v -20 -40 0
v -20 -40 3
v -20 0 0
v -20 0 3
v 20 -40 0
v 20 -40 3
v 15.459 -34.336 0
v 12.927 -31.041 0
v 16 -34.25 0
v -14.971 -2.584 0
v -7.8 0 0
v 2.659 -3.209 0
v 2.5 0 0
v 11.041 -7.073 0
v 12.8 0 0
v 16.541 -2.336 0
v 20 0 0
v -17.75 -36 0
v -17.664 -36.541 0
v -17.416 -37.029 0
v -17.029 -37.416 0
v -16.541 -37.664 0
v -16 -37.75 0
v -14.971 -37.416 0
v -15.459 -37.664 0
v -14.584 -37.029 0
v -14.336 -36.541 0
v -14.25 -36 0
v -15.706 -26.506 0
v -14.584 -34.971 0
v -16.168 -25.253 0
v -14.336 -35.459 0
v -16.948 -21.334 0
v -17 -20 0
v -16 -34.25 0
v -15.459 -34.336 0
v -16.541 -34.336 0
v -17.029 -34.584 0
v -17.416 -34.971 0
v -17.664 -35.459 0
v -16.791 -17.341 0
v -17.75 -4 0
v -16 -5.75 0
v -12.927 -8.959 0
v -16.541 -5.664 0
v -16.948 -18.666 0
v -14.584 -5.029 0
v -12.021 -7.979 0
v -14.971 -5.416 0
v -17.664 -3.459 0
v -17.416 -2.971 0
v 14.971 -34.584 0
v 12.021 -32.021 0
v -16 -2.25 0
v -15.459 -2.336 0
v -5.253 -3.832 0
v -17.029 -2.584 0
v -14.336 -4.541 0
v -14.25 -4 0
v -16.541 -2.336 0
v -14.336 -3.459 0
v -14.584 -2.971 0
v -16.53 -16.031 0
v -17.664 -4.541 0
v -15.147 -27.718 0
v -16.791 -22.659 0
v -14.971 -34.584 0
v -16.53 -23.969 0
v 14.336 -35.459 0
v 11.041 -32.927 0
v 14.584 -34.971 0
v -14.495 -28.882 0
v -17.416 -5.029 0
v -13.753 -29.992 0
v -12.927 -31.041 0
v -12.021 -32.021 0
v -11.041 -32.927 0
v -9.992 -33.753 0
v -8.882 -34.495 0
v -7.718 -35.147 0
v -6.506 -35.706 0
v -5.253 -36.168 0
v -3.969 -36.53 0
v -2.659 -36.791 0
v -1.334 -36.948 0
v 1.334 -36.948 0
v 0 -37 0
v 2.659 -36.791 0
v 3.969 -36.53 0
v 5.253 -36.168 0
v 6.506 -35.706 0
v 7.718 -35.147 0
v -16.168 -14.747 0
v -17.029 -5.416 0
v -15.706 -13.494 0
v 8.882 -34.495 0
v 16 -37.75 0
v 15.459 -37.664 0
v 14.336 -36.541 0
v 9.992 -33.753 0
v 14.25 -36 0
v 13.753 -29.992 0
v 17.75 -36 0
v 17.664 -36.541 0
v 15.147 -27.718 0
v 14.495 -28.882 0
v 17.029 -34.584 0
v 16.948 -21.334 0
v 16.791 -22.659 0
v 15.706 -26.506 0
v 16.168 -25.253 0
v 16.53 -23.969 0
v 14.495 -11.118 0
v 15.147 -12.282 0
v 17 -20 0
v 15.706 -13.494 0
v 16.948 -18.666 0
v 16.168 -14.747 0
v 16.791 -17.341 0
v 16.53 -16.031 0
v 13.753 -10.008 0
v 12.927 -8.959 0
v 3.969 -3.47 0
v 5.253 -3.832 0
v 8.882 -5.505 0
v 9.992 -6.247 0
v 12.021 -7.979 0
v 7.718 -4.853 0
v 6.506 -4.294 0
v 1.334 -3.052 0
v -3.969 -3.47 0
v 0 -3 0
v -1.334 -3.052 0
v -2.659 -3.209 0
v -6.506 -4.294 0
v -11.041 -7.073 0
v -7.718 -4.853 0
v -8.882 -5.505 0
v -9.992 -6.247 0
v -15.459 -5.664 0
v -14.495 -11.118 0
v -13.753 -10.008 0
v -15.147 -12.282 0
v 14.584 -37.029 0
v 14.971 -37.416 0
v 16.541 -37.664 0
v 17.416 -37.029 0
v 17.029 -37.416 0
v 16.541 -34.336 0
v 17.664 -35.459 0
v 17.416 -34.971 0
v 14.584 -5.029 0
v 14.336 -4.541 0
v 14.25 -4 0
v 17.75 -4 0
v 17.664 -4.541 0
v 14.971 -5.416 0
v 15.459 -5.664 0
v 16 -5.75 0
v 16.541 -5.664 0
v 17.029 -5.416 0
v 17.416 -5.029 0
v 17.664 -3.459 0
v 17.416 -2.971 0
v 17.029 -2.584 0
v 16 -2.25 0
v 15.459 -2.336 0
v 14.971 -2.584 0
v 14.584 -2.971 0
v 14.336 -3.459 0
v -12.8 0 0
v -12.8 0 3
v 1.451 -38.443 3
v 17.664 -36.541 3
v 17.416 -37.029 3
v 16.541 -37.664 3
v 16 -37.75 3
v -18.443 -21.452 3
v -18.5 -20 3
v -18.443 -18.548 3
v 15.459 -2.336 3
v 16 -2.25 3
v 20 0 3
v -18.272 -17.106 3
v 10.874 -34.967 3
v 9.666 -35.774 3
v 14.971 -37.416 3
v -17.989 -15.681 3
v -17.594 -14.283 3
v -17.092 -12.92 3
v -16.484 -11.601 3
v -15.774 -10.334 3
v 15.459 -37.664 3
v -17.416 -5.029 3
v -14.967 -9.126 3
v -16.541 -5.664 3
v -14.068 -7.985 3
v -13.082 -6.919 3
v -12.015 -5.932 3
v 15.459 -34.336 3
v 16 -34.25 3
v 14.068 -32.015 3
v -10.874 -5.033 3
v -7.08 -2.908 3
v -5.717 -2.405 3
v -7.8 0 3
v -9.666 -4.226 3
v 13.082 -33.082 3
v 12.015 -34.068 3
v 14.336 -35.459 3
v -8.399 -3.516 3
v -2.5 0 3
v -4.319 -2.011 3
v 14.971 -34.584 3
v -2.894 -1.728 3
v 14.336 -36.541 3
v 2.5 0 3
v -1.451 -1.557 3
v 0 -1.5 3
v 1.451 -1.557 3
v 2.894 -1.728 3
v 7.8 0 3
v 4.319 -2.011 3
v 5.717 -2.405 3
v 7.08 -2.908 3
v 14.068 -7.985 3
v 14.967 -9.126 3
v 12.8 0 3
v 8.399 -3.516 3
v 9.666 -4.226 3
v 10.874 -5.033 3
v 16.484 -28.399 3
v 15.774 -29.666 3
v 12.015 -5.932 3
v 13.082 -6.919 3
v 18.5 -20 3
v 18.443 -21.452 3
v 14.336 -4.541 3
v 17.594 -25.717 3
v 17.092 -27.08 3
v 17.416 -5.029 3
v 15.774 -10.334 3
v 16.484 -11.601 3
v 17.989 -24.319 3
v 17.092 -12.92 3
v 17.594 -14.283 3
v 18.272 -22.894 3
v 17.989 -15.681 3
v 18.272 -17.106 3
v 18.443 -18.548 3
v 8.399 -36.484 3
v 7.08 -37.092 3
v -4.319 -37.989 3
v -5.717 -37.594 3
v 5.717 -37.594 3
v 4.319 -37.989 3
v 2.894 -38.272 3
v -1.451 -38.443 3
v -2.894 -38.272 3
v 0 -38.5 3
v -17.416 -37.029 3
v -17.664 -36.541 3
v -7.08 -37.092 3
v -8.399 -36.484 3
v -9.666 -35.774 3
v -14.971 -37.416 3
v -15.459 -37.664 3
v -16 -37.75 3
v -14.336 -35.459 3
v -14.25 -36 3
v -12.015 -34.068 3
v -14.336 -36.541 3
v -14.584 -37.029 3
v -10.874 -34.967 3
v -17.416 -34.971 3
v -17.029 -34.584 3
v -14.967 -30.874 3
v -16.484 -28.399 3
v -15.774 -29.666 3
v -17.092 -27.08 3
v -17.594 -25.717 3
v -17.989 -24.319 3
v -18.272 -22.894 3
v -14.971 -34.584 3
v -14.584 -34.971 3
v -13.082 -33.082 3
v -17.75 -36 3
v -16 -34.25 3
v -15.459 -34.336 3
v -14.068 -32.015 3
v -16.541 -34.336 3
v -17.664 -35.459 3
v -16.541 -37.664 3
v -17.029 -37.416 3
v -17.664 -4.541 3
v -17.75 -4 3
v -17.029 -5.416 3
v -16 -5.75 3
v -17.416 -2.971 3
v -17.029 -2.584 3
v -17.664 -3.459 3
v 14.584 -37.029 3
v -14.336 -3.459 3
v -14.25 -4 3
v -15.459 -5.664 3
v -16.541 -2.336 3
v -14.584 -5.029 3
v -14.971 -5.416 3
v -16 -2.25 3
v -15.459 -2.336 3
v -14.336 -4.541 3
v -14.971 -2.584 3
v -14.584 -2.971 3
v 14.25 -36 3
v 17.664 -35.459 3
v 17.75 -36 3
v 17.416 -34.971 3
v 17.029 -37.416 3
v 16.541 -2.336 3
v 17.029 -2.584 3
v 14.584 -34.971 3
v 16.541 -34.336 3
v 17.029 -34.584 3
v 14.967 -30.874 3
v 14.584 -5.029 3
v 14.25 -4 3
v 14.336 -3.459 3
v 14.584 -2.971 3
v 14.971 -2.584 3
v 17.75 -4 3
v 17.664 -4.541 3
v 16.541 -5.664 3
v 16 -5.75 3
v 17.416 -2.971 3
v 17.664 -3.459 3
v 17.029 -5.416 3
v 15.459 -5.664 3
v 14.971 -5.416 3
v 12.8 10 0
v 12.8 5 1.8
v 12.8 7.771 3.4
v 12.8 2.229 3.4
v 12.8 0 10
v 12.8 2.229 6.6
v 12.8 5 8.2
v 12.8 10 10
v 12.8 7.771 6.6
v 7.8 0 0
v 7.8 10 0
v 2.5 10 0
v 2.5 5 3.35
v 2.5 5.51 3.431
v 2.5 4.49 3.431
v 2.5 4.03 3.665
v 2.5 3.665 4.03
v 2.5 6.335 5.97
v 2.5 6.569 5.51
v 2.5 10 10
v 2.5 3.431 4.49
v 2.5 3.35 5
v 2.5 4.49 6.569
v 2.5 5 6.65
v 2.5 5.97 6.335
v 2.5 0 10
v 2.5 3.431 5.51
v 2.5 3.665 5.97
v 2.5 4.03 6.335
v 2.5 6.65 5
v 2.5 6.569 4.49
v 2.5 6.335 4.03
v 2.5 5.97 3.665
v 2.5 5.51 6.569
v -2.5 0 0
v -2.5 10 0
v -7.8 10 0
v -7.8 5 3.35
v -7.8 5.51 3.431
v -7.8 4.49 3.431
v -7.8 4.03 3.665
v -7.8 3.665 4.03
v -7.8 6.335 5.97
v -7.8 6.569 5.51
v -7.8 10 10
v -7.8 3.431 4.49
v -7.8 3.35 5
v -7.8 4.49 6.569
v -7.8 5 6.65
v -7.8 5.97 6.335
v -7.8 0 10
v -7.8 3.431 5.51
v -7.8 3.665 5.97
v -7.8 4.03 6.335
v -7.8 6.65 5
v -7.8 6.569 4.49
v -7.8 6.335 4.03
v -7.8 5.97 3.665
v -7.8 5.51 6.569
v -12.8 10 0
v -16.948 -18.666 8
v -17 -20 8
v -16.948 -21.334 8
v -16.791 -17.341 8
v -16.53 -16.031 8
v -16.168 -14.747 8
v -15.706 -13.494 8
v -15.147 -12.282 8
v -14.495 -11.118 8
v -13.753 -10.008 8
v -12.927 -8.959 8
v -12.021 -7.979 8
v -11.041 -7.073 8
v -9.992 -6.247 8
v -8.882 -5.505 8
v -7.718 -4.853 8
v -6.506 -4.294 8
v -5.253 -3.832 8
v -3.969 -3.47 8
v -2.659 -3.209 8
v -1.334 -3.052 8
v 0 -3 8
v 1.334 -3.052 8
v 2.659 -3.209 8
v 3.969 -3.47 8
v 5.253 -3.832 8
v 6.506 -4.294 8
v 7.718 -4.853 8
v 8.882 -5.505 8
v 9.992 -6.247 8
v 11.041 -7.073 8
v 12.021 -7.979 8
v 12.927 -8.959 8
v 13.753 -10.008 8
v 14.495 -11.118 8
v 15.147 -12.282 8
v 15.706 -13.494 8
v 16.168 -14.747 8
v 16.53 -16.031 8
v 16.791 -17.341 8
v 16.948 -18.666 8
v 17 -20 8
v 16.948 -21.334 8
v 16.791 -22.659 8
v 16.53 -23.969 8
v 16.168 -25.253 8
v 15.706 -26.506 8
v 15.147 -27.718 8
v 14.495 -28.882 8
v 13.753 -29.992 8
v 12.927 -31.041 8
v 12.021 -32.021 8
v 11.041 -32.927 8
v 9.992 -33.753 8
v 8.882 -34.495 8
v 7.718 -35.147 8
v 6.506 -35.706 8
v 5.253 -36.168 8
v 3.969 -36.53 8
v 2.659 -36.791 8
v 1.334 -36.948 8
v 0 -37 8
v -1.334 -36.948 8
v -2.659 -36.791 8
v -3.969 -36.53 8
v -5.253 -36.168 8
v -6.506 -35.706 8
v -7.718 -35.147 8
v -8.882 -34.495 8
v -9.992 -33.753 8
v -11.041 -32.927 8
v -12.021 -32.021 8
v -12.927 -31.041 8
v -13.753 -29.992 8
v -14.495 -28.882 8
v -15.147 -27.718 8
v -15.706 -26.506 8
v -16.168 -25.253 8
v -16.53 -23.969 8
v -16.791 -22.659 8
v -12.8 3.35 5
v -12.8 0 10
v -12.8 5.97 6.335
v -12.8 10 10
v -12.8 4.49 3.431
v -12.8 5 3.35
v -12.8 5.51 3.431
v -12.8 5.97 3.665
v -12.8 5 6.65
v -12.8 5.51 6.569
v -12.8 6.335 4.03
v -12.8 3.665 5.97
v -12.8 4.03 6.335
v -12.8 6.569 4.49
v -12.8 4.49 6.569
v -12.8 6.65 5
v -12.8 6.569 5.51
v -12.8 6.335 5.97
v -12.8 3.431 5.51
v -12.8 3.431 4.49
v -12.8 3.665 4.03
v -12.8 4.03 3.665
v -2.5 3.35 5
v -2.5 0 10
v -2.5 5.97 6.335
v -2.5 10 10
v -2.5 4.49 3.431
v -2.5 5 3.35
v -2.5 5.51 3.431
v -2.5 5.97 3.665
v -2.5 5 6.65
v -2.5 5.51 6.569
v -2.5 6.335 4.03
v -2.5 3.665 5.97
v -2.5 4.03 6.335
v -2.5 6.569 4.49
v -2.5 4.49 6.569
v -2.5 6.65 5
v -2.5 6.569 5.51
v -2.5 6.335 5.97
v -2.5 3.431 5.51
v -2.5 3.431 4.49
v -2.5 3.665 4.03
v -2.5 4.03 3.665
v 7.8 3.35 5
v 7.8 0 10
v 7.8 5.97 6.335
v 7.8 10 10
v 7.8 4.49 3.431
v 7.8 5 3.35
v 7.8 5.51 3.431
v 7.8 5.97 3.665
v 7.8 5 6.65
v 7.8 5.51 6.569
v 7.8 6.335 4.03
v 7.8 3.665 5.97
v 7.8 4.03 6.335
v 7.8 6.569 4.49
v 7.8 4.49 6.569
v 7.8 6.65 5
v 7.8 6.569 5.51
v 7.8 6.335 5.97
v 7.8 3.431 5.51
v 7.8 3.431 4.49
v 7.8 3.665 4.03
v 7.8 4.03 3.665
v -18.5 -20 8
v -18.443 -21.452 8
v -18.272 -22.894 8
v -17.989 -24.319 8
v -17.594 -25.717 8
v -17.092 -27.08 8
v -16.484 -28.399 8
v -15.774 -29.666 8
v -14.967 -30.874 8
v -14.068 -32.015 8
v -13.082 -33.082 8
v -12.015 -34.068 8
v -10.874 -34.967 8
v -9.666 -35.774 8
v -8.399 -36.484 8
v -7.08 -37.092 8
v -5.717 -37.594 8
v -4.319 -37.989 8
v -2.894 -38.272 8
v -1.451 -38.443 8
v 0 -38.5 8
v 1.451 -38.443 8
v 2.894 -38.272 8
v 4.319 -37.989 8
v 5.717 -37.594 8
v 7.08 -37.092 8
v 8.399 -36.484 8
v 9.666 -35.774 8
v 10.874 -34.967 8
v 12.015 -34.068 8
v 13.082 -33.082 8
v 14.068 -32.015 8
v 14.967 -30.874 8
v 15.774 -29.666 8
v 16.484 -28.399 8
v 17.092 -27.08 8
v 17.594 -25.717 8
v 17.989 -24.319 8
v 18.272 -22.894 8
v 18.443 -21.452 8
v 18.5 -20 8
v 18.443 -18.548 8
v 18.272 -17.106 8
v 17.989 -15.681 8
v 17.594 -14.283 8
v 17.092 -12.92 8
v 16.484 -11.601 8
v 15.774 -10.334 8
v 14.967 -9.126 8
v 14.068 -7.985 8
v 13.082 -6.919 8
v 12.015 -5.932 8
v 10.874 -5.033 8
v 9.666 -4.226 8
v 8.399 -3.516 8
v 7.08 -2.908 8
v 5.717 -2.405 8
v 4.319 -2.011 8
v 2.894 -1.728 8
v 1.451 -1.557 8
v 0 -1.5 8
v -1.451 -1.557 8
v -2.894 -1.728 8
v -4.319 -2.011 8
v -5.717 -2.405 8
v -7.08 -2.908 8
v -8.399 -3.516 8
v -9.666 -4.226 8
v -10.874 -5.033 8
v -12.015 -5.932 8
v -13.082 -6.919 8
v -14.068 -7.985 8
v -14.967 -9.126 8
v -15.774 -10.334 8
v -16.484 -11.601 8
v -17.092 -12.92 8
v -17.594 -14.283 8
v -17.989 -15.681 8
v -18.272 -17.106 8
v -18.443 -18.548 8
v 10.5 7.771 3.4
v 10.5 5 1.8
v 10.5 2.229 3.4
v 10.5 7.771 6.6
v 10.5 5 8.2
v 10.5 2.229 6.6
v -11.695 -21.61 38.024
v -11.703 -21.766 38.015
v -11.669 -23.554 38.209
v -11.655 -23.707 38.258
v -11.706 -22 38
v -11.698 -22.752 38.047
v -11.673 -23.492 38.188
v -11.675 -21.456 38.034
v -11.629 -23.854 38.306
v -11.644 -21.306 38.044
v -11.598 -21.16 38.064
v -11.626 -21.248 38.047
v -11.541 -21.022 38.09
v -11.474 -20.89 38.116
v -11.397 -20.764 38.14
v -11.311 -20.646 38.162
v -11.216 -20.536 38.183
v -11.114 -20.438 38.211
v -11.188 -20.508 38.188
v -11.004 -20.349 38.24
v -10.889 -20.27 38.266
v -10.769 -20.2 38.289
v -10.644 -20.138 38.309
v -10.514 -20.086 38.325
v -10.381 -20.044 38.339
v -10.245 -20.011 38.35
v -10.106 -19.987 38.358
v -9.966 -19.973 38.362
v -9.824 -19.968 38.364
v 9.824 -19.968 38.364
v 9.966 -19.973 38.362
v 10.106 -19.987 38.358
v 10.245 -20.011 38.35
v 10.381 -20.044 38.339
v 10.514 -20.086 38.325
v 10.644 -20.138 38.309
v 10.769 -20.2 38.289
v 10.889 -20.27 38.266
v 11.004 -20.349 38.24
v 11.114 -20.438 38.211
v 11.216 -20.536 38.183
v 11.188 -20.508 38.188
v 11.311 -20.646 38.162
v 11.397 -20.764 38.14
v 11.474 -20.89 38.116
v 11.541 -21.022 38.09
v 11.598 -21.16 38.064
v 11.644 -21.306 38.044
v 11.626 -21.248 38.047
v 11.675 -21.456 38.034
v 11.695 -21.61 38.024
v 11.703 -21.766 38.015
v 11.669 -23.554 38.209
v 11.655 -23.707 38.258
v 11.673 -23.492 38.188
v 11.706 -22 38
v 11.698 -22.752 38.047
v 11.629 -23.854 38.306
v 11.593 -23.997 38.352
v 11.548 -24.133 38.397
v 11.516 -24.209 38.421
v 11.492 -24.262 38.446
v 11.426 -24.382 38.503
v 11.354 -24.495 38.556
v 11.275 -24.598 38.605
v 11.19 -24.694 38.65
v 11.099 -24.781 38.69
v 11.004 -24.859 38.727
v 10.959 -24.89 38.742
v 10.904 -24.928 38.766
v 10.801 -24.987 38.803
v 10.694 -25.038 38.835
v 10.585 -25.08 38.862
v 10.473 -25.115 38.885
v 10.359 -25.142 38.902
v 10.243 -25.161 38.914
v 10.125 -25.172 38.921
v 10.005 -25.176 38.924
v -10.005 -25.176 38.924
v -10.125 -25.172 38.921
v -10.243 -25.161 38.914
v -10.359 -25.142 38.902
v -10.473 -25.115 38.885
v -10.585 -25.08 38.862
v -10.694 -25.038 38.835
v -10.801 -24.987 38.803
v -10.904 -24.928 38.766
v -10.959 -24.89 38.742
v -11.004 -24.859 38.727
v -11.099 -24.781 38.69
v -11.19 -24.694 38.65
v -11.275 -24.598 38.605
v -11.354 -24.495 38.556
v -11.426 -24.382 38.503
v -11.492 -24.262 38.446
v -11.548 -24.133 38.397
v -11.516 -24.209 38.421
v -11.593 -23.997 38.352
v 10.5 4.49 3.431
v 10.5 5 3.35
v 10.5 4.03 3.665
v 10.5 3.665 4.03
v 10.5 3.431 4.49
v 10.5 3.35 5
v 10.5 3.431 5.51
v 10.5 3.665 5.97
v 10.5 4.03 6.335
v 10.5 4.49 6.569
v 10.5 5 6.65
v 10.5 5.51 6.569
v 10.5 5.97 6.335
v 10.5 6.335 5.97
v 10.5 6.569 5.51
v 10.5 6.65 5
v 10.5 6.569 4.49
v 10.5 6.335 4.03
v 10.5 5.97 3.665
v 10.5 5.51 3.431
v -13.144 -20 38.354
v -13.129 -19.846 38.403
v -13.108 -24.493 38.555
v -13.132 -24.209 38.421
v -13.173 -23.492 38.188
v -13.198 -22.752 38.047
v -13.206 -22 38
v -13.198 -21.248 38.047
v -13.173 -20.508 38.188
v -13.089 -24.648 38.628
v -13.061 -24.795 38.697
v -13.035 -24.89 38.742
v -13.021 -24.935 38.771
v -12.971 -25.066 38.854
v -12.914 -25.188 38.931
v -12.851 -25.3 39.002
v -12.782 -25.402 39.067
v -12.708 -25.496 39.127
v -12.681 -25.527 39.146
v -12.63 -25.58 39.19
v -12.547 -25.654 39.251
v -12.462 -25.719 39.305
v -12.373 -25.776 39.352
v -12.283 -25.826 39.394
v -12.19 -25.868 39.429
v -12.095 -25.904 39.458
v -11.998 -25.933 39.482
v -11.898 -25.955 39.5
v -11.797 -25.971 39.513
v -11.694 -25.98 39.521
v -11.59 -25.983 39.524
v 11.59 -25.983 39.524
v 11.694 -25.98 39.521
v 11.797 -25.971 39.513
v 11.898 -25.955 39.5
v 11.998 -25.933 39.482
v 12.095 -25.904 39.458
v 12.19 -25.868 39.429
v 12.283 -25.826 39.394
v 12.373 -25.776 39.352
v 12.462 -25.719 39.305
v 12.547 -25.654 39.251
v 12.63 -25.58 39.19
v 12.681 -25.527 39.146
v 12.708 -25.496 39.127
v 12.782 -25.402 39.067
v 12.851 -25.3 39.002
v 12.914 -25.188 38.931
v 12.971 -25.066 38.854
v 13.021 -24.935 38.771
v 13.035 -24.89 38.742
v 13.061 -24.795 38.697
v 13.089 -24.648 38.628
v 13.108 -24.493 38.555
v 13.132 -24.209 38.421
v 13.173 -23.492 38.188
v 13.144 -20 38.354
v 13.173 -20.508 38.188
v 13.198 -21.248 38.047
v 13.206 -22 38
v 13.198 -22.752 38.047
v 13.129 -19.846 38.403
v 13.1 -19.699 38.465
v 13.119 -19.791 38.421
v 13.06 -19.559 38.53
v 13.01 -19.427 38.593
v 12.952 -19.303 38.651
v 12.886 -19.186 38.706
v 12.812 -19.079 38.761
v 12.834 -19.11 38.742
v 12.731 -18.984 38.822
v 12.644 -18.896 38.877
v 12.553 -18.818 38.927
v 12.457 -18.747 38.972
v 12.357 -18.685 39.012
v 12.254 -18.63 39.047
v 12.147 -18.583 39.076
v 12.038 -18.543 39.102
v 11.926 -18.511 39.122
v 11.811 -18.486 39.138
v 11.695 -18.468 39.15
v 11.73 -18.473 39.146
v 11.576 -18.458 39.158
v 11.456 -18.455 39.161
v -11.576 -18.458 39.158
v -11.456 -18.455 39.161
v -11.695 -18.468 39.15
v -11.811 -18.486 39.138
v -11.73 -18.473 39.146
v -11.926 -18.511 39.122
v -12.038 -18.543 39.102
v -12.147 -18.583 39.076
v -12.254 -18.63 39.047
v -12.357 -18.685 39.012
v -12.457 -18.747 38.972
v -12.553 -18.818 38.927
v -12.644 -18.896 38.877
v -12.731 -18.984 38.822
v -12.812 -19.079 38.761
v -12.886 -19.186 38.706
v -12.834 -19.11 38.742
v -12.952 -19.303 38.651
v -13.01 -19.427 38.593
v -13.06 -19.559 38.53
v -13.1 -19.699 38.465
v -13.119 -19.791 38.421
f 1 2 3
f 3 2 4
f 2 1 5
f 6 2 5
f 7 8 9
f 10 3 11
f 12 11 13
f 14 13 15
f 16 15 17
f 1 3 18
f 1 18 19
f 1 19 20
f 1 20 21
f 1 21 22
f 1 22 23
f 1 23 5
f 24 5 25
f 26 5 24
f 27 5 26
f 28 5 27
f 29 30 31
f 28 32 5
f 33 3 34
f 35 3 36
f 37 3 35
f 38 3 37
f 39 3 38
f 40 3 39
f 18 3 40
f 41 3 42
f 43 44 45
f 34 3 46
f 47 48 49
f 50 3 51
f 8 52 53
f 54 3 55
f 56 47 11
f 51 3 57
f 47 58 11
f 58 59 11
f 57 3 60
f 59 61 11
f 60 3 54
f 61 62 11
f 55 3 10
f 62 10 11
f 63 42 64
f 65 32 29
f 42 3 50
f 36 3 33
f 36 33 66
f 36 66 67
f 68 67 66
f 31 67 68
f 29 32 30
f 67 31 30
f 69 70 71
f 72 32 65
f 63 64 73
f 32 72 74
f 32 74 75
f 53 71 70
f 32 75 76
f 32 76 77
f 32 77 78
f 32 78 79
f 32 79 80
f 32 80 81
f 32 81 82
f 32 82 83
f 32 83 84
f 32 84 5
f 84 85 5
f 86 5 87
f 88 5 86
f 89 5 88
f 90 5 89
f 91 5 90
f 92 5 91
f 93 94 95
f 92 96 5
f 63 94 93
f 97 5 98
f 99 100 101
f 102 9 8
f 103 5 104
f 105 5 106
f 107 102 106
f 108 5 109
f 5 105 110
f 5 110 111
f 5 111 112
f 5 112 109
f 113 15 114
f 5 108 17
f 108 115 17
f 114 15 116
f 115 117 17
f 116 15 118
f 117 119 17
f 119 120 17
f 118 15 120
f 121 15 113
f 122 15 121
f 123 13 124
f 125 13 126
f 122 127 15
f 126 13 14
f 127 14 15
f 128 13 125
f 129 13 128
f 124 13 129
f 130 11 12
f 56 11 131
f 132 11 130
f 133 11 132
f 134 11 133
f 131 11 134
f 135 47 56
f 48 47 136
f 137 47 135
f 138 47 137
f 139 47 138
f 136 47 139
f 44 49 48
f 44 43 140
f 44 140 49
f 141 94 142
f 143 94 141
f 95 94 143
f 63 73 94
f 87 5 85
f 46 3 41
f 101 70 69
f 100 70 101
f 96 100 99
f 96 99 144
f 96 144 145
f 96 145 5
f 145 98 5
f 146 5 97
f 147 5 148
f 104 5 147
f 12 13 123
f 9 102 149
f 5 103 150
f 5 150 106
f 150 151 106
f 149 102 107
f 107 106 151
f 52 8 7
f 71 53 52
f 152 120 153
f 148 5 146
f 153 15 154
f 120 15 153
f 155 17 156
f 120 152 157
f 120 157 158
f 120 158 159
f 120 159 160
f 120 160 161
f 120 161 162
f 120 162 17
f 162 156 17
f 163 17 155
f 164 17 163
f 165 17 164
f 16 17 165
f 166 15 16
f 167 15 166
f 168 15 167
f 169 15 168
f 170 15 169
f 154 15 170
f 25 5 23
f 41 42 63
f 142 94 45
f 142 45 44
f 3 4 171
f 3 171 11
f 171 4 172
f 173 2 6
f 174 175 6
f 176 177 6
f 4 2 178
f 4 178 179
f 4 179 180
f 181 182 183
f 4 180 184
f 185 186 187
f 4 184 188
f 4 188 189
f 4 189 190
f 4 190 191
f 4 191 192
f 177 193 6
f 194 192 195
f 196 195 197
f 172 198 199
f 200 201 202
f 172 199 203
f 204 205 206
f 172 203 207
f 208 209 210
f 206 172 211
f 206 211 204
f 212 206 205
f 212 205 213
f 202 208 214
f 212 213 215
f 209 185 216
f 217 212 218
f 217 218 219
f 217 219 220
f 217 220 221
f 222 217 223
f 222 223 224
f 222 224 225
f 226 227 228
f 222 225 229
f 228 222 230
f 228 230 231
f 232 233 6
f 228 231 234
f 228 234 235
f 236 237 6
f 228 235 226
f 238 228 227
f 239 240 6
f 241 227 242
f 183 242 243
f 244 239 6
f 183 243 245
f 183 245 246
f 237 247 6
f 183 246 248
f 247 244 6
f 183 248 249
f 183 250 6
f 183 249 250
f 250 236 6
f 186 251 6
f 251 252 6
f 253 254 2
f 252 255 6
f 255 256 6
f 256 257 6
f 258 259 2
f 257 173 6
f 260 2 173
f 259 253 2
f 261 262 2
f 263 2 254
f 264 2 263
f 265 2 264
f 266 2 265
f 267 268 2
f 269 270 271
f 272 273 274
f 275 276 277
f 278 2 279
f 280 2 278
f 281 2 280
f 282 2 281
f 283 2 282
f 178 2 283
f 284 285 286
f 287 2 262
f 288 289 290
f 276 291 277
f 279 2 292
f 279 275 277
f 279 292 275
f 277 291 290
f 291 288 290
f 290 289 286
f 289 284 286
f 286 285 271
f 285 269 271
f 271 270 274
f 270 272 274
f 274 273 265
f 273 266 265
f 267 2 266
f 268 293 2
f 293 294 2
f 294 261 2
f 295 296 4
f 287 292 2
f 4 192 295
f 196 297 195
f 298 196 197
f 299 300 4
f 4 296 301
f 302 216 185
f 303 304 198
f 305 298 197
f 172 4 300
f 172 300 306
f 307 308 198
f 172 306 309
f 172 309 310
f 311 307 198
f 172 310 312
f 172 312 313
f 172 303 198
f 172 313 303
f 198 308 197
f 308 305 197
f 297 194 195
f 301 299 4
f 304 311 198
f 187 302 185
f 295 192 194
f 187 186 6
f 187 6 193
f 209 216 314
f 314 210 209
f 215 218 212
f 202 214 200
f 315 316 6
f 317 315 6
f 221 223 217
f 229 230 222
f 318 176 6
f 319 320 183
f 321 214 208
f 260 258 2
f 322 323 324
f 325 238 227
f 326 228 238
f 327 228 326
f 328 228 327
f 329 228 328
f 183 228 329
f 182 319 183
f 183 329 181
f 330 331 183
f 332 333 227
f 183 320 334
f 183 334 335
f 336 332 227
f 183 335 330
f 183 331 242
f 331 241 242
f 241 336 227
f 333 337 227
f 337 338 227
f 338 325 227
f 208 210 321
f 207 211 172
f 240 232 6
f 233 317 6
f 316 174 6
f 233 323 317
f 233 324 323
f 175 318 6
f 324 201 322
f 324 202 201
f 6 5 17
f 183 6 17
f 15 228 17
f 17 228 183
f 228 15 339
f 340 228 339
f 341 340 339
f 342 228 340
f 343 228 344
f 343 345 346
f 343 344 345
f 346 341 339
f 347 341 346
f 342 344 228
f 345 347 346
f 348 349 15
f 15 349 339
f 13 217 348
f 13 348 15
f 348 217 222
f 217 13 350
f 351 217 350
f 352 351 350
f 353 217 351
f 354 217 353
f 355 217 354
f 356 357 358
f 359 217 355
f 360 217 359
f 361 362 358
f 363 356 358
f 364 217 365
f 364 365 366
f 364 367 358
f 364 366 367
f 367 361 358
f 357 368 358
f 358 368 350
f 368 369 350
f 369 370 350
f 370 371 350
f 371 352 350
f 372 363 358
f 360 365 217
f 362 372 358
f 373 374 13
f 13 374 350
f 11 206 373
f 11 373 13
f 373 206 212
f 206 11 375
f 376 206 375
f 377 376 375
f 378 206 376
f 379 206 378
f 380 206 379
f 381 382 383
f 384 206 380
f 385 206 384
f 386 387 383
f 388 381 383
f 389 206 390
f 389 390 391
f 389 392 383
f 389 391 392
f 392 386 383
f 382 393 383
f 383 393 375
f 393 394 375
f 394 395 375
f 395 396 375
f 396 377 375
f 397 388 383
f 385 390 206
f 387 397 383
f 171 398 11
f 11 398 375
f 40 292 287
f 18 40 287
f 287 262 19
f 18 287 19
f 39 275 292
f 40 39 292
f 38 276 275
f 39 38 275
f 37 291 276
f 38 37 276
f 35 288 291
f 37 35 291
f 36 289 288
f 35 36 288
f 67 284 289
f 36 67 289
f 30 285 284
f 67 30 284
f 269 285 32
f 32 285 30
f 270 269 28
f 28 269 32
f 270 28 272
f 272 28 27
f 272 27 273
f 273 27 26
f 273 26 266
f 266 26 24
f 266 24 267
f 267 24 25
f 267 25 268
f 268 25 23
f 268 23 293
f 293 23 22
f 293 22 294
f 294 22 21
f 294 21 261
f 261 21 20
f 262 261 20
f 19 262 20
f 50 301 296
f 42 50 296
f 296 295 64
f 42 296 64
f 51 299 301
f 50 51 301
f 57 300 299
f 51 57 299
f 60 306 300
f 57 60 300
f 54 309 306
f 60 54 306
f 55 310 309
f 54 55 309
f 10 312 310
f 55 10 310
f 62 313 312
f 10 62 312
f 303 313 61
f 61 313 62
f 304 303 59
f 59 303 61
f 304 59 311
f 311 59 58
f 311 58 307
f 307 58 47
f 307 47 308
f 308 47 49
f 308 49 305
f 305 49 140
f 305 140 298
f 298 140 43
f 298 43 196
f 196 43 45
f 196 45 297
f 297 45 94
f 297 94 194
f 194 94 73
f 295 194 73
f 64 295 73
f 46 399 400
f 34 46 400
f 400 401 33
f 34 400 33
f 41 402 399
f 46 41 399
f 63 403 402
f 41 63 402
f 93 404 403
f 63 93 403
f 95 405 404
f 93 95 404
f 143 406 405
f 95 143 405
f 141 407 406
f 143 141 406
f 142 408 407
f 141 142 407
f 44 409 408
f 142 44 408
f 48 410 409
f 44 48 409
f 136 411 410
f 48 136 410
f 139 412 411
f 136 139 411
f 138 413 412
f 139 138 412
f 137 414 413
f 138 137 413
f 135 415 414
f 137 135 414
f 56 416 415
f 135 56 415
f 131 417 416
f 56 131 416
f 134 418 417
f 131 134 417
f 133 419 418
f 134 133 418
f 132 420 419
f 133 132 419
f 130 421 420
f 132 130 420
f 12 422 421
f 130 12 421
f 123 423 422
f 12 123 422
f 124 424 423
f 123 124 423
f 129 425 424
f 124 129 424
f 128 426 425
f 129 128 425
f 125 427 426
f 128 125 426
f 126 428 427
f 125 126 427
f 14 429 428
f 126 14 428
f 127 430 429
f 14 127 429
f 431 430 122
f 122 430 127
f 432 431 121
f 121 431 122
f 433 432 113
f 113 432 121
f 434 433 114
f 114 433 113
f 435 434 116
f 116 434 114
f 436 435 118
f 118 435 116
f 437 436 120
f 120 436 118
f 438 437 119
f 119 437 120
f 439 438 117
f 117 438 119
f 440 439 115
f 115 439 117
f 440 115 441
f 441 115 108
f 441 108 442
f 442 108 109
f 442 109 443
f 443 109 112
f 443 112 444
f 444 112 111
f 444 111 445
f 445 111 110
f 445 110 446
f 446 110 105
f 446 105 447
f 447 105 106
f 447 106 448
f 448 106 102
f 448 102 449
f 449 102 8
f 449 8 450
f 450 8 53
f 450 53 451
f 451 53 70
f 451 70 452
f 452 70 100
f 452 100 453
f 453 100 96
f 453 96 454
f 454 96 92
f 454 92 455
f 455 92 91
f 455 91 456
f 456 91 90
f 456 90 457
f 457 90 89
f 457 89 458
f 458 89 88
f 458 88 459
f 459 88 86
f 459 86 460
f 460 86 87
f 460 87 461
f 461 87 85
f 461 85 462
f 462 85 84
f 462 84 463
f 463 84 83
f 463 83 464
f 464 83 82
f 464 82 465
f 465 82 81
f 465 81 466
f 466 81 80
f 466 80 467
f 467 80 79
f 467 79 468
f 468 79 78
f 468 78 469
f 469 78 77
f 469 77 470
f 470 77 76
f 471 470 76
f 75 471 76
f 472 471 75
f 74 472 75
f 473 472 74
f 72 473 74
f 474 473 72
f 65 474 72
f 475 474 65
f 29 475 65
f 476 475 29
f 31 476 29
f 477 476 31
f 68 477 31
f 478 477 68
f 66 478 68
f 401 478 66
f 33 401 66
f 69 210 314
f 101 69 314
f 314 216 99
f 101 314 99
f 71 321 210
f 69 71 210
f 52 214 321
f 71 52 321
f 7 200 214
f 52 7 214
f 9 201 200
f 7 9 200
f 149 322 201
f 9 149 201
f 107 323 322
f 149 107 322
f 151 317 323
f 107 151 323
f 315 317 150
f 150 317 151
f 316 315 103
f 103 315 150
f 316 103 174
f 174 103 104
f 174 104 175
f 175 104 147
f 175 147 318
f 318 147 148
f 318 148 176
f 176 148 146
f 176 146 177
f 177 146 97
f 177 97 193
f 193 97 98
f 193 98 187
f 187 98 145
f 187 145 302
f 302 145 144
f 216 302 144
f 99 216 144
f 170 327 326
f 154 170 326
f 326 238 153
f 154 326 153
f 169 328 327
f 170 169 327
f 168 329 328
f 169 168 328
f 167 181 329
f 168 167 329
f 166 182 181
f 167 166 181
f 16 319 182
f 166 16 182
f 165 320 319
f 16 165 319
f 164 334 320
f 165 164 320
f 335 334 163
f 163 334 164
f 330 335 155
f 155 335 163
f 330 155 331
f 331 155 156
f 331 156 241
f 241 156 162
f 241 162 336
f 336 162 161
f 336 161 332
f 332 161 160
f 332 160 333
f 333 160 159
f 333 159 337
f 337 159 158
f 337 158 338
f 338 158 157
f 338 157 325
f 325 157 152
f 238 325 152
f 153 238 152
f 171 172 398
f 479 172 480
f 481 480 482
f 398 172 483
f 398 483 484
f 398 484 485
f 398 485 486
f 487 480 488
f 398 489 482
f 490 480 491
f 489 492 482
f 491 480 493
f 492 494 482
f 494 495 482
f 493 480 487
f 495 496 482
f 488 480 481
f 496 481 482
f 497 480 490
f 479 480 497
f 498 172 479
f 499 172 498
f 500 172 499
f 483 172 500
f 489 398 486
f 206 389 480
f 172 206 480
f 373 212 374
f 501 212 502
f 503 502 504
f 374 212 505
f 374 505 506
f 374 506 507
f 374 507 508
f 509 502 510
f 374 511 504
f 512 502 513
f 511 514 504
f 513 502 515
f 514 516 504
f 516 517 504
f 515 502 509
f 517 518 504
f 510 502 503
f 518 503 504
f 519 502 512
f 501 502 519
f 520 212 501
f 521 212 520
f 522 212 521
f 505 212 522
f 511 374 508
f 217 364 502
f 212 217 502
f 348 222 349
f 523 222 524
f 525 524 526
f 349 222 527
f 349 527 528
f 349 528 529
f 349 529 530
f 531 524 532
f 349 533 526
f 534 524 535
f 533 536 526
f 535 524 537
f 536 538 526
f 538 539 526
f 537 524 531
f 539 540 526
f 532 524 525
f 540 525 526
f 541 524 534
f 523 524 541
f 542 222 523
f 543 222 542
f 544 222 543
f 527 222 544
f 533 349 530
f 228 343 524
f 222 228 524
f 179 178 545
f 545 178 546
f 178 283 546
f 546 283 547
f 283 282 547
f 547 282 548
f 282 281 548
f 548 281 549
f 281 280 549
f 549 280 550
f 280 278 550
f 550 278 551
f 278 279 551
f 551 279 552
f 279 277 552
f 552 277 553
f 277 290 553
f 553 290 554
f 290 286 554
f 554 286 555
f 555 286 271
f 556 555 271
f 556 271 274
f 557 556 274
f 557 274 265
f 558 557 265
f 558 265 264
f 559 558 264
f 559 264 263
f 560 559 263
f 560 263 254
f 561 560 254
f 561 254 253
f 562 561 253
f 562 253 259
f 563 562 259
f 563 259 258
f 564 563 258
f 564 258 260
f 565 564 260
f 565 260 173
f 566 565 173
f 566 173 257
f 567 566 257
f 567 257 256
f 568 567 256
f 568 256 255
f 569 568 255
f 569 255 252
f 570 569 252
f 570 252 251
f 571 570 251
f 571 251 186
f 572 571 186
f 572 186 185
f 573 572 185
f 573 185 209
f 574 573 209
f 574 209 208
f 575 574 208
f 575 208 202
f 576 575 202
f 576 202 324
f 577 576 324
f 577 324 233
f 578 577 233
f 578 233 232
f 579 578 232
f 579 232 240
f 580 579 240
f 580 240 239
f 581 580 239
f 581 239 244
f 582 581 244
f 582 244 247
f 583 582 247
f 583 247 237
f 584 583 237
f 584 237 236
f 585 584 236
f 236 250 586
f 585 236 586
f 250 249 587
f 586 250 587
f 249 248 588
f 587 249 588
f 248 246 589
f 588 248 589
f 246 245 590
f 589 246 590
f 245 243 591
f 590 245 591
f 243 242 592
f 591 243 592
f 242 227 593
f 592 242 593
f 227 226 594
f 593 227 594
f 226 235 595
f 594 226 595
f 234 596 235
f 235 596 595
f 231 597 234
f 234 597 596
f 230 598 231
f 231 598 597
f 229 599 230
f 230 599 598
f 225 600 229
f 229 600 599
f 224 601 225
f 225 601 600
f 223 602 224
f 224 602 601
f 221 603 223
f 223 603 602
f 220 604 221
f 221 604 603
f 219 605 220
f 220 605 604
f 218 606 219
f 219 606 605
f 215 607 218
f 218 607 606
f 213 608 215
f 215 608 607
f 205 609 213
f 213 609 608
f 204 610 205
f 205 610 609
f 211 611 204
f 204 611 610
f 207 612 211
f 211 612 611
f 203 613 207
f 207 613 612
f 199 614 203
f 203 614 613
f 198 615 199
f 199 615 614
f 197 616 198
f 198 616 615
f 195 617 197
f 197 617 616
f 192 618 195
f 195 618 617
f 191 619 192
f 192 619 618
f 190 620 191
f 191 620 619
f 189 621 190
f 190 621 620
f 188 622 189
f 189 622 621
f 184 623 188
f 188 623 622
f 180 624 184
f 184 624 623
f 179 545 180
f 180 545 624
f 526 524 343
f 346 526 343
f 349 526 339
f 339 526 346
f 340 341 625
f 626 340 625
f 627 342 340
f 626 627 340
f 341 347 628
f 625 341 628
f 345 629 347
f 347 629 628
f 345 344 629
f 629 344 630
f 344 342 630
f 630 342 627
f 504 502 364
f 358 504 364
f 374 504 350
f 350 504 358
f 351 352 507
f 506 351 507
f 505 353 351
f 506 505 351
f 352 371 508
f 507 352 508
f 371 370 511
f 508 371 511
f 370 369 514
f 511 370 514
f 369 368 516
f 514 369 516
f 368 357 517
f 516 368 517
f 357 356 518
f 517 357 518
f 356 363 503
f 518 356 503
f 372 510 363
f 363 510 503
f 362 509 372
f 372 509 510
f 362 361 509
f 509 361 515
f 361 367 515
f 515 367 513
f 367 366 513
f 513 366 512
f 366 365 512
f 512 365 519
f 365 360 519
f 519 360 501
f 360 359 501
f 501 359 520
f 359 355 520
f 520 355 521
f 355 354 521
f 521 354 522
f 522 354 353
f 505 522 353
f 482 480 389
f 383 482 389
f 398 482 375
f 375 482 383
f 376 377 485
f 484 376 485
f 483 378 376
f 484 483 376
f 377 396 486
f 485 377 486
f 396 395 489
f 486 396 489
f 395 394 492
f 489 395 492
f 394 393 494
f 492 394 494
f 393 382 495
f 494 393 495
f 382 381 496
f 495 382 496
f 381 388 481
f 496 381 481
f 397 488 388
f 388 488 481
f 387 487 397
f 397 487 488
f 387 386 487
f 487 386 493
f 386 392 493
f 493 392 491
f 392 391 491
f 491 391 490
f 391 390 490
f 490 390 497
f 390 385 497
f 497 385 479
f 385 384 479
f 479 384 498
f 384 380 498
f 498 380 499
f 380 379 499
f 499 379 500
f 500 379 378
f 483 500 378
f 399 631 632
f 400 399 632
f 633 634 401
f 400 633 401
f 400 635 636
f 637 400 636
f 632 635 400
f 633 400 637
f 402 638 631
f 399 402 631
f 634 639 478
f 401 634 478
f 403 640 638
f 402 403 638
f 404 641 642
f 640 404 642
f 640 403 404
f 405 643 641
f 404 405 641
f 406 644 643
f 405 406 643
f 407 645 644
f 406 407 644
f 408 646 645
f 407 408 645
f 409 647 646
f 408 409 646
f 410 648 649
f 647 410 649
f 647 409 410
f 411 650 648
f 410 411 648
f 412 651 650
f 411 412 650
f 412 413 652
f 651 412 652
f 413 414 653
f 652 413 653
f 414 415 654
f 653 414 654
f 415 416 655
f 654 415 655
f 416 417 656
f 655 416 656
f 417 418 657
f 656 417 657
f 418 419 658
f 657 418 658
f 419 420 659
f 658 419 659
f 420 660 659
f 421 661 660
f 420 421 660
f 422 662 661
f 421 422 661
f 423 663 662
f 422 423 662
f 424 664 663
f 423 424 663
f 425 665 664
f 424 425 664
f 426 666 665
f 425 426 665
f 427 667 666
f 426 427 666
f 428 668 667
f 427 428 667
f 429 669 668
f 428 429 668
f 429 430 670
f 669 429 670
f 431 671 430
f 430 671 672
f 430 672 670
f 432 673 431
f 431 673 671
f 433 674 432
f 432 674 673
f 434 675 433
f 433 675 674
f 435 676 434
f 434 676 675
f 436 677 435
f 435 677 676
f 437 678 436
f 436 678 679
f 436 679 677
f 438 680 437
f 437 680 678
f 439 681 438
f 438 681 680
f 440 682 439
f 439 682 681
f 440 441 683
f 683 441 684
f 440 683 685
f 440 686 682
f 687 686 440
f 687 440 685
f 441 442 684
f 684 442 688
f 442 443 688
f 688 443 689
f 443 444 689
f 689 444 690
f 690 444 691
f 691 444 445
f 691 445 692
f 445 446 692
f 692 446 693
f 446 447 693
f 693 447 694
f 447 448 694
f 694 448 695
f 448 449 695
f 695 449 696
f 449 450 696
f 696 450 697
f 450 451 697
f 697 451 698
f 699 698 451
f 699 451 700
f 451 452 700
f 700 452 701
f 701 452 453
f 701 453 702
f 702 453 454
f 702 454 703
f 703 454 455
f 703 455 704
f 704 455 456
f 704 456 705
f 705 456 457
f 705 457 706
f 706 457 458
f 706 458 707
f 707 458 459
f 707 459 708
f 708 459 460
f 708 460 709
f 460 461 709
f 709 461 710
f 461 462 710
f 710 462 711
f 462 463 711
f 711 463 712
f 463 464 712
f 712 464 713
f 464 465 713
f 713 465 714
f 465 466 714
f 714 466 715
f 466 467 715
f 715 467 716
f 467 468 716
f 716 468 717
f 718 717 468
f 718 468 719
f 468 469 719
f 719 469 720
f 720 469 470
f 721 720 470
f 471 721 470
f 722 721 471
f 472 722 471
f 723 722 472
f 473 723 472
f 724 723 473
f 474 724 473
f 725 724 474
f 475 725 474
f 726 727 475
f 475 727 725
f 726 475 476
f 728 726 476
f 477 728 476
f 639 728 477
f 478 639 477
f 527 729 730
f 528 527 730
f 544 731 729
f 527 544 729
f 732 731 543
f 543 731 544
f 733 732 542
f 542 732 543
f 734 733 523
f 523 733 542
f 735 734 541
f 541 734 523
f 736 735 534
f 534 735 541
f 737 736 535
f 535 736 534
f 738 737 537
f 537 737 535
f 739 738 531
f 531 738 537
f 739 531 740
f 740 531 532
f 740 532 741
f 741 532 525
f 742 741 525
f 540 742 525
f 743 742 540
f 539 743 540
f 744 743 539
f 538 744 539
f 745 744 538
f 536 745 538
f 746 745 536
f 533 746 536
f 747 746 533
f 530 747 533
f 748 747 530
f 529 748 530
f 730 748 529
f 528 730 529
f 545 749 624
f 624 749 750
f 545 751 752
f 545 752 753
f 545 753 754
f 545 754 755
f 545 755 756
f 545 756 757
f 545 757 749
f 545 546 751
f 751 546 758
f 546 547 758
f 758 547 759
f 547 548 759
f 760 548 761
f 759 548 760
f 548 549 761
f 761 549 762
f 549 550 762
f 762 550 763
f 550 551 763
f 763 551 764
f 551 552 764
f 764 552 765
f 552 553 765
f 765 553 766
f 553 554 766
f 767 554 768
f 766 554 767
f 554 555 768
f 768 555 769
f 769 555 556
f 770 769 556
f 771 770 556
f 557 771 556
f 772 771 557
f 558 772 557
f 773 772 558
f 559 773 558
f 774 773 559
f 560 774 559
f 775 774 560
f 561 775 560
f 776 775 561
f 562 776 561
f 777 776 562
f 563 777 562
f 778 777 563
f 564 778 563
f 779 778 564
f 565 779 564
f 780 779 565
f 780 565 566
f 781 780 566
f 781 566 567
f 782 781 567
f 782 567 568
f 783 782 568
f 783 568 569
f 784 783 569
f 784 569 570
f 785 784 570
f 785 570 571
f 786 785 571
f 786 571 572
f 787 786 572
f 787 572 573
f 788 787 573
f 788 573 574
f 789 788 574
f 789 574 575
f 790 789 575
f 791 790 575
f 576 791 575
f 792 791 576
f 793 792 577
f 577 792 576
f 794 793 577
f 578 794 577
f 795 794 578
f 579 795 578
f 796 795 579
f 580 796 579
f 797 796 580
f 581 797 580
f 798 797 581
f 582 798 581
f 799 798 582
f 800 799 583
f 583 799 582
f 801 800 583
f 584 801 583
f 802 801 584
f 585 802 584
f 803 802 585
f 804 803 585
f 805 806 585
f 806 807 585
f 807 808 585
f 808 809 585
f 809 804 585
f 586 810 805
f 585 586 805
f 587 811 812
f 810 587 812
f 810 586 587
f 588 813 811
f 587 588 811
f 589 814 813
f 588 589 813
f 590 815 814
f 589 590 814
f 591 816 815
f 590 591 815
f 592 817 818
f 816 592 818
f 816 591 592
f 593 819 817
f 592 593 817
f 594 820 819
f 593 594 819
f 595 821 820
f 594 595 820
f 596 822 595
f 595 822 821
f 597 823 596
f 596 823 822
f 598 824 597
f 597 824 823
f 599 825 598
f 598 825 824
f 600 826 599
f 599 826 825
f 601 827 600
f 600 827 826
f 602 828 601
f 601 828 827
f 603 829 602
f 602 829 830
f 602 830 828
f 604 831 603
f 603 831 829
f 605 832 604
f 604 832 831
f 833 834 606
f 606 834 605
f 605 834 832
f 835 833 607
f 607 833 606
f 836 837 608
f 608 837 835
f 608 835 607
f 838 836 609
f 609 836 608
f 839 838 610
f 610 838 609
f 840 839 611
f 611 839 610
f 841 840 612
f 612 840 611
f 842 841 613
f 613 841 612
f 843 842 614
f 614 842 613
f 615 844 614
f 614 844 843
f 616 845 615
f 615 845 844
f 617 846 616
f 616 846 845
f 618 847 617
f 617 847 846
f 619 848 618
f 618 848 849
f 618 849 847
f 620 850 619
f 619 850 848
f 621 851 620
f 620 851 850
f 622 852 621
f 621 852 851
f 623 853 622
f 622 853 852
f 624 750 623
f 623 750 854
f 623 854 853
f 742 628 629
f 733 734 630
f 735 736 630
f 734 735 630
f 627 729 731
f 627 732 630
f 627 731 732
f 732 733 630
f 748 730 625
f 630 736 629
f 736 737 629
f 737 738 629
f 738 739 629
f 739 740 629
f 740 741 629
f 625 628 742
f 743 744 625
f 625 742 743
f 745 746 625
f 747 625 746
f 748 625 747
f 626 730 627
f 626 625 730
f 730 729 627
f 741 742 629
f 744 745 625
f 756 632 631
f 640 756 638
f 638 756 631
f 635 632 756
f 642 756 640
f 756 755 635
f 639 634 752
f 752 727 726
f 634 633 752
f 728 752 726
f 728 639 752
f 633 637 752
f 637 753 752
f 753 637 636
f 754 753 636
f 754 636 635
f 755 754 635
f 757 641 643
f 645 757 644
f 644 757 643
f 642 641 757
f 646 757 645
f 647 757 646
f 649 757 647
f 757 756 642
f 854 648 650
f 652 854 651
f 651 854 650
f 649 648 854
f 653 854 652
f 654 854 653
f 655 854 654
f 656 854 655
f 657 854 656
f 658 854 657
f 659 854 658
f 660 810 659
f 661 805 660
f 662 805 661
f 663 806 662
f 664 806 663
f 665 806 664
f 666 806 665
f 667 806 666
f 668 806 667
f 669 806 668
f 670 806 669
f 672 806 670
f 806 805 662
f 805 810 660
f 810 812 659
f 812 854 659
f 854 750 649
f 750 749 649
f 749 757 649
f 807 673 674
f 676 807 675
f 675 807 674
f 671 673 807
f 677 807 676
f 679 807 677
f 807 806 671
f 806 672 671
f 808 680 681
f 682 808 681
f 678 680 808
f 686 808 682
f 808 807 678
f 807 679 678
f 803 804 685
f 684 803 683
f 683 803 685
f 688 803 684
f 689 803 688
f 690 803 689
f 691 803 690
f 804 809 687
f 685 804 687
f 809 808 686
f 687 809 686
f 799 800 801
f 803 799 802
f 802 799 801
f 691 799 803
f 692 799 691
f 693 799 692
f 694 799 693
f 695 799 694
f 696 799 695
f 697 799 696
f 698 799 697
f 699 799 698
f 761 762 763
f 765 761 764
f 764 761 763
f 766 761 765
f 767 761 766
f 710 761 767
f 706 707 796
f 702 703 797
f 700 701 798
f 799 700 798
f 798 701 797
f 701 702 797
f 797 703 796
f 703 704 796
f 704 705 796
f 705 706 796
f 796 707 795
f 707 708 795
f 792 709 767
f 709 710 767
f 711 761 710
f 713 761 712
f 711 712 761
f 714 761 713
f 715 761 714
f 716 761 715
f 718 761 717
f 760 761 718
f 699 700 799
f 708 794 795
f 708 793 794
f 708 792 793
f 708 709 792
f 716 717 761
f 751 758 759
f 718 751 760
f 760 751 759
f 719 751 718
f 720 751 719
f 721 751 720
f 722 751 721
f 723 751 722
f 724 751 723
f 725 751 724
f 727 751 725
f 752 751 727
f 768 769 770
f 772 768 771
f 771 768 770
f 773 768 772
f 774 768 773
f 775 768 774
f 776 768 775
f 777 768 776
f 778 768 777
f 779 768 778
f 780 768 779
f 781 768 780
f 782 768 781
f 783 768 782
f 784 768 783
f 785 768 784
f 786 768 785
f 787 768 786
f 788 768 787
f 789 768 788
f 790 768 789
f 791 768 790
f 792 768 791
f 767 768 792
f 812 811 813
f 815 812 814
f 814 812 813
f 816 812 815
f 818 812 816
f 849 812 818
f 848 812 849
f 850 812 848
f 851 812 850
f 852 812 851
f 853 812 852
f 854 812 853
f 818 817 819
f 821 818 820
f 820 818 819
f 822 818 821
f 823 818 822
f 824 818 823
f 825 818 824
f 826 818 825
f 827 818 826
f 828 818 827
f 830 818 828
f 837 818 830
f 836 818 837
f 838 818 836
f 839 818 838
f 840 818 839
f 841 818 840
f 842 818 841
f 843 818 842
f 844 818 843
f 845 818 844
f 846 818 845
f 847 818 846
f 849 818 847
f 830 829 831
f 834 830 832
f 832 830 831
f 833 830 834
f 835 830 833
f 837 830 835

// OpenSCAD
// file: obiscad/attach.scad
//---------------------------------------------------------------
//-- Openscad Attachment library
//-- Attach parts easily. Make your designs more reusable and clean
//---------------------------------------------------------------
//-- This is a component of the obiscad opescad tools by Obijuan
//-- (C) Juan Gonzalez-Gomez (Obijuan)
//-- Sep-2012
//---------------------------------------------------------------
//-- Released under the GPL license
//---------------------------------------------------------------

use <vector.scad>

//--------------------------------------------------------------------
//-- Draw a connector
//-- A connector is defined a 3-tuple that consist of a point
//--- (the attachment point), and axis (the attachment axis) and
//--- an angle the connected part should be rotate around the 
//--  attachment axis
//--
//--- Input parameters:
//--
//--  Connector c = [p , n, ang] where:
//--
//--     p : The attachment point
//--     v : The attachment axis
//--   ang : the angle
//--------------------------------------------------------------------
module connector(c)
{
  //-- Get the three components from the connector
  p = c[0];
  v = c[1];
  ang = c[2];

  //-- Draw the attachment poing
  color("Gray") point(p);

  //-- Draw the attachment axis vector (with a mark)
  translate(p)
    rotate(a=ang, v=v)
    color("Gray") vector(unitv(v)*6, l_arrow=2, mark=true);
}


//-------------------------------------------------------------------------
//--  ATTACH OPERATOR
//--  This operator applies the necesary transformations to the 
//--  child (attachable part) so that it is attached to the main part
//--  
//--  Parameters
//--    a -> Connector of the main part
//--    b -> Connector of the attachable part
//-------------------------------------------------------------------------
module attach(a,b)
{
  //-- Get the data from the connectors
  pos1 = a[0];  //-- Attachment point. Main part
  v    = a[1];  //-- Attachment axis. Main part
  roll = a[2];  //-- Rolling angle
  
  pos2 = b[0];  //-- Attachment point. Attachable part
  vref = b[1];  //-- Atachment axis. Attachable part
                //-- The rolling angle of the attachable part is not used

  //-------- Calculations for the "orientate operator"------
  //-- Calculate the rotation axis
  raxis = cross(vref,v);
    
  //-- Calculate the angle between the vectors
  ang = anglev(vref,v);
  //--------------------------------------------------------.-

  //-- Apply the transformations to the child ---------------------------

  //-- Place the attachable part on the main part attachment point
  translate(pos1)
    //-- Orientate operator. Apply the orientation so that
    //-- both attachment axis are paralell. Also apply the roll angle
    rotate(a=roll, v=v)  rotate(a=ang, v=raxis)
      //-- Attachable part to the origin
      translate(-pos2)
	child(0); 
}


//--------------------------------------------------------------------
//---   An example of the attach operator
//---  
//---  There are two parts: the main body and an arm
//---  They both are cubes (for simplicity)
//---
//--   In the main body there are 2 connectors defined, so that
//--  the arm can be attached to any of them (or both if you like)
//------------------------------------------------------------------

//-- In the debug mode the connectors and additional information
//-- are shown
debug=true;

//-- Define the Main part: A cube
//-- Two attachment points are defined: one on the top, another in the
//--- left side
size = [10,10,10];

//-- Connectors defined:

//--     Att. point       Att. Axis  Roll
c1 = [ [0,0,size[2]/2],  [0,0,1],     20];  //-- Connector on the top
c2 = [ [-size[0]/2,0,0], [-1,0,0],    90];  //-- Connector on the left


//-- Draw the main part along with the connectors (for debugging)
cube(size,center=true);

//-- In debug mode: Draw the main part connectors!
if (debug) {
  connector(c1);
  connector(c2);
}

//-- Define the Attachable part. It is another cube, with one connector
asize = [5,20,3];
a = [ [0,asize[1]/2-3,-asize[2]/2], [0,0,1], 0  ];


//-- Do the attach!
//-- Just change c1 by c2 to attach the part to the other 
//-- connector. Super-easy!! :-)
//-- Modify the c1 and c2 roll angle for rotating the attachable
//--  part to the desired orientation
attach(c1,a)
  //-- This is the attachable part! 
  union() {
    cube(asize,center=true);  //-- The part

    //-- In debug mode show additional info:
    if (debug) {
      frame(l=10);    //-- The part frame of reference.
      connector(a);   //-- Show the part connector
    }
  };

  
// main file
use <obiscad/bevel.scad>
use <obiscad/attach.scad>
use <MCAD/nuts_and_bolts.scad>

module fan_pad(nut = false){
rotate([0,-90,0])
difference(){
if(nut){
cube([10,10,5]);
}else{
cube([10,10,5]);
}
translate([5,5])cylinder(r=3.3/2,h=6,$fn=20);
if (nut)
#translate([5,5,-0.1])nutHole(3);

}



}

difference(){
translate([-20,-40,0])cube([40,40,3]);
translate([-16,-4,-1])cylinder(r=3.5/2,h=6,$fn=20);
translate([16,-4,-1])cylinder(r=3.5/2,h=6,$fn=20);
translate([-16,-36,-1])cylinder(r=3.5/2,h=6,$fn=20);
translate([16,-36,-1])cylinder(r=3.5/2,h=6,$fn=20);
translate([0,-20,-1])cylinder(r=37/2,h=6,$fn=80);

}
difference(){
difference(){
hull(){
translate([0,-20,0])cylinder(r=37/2,h=8,$fn=80);
translate([-12.5,-25,32])cube([25,5,10]);
}
hull(){
translate([0,-20,0])cylinder(r=37/2-1.5,h=8,$fn=80);
translate([-12.5+1.5,-42+1.5+15+1.5,32])cube([25-3,5-3,10]);
//translate([-27/2,-27-1.5,7])cube([27,27,10]);
}
}
#translate([-30,-22,44])rotate([0,90,0])cylinder(r=6,h=50,$fn=50);
}

translate([2.5,0])fan_pad();
translate([2.5+5.3+5,0])fan_pad(true);
translate([-2.5-5.3,0])fan_pad();
